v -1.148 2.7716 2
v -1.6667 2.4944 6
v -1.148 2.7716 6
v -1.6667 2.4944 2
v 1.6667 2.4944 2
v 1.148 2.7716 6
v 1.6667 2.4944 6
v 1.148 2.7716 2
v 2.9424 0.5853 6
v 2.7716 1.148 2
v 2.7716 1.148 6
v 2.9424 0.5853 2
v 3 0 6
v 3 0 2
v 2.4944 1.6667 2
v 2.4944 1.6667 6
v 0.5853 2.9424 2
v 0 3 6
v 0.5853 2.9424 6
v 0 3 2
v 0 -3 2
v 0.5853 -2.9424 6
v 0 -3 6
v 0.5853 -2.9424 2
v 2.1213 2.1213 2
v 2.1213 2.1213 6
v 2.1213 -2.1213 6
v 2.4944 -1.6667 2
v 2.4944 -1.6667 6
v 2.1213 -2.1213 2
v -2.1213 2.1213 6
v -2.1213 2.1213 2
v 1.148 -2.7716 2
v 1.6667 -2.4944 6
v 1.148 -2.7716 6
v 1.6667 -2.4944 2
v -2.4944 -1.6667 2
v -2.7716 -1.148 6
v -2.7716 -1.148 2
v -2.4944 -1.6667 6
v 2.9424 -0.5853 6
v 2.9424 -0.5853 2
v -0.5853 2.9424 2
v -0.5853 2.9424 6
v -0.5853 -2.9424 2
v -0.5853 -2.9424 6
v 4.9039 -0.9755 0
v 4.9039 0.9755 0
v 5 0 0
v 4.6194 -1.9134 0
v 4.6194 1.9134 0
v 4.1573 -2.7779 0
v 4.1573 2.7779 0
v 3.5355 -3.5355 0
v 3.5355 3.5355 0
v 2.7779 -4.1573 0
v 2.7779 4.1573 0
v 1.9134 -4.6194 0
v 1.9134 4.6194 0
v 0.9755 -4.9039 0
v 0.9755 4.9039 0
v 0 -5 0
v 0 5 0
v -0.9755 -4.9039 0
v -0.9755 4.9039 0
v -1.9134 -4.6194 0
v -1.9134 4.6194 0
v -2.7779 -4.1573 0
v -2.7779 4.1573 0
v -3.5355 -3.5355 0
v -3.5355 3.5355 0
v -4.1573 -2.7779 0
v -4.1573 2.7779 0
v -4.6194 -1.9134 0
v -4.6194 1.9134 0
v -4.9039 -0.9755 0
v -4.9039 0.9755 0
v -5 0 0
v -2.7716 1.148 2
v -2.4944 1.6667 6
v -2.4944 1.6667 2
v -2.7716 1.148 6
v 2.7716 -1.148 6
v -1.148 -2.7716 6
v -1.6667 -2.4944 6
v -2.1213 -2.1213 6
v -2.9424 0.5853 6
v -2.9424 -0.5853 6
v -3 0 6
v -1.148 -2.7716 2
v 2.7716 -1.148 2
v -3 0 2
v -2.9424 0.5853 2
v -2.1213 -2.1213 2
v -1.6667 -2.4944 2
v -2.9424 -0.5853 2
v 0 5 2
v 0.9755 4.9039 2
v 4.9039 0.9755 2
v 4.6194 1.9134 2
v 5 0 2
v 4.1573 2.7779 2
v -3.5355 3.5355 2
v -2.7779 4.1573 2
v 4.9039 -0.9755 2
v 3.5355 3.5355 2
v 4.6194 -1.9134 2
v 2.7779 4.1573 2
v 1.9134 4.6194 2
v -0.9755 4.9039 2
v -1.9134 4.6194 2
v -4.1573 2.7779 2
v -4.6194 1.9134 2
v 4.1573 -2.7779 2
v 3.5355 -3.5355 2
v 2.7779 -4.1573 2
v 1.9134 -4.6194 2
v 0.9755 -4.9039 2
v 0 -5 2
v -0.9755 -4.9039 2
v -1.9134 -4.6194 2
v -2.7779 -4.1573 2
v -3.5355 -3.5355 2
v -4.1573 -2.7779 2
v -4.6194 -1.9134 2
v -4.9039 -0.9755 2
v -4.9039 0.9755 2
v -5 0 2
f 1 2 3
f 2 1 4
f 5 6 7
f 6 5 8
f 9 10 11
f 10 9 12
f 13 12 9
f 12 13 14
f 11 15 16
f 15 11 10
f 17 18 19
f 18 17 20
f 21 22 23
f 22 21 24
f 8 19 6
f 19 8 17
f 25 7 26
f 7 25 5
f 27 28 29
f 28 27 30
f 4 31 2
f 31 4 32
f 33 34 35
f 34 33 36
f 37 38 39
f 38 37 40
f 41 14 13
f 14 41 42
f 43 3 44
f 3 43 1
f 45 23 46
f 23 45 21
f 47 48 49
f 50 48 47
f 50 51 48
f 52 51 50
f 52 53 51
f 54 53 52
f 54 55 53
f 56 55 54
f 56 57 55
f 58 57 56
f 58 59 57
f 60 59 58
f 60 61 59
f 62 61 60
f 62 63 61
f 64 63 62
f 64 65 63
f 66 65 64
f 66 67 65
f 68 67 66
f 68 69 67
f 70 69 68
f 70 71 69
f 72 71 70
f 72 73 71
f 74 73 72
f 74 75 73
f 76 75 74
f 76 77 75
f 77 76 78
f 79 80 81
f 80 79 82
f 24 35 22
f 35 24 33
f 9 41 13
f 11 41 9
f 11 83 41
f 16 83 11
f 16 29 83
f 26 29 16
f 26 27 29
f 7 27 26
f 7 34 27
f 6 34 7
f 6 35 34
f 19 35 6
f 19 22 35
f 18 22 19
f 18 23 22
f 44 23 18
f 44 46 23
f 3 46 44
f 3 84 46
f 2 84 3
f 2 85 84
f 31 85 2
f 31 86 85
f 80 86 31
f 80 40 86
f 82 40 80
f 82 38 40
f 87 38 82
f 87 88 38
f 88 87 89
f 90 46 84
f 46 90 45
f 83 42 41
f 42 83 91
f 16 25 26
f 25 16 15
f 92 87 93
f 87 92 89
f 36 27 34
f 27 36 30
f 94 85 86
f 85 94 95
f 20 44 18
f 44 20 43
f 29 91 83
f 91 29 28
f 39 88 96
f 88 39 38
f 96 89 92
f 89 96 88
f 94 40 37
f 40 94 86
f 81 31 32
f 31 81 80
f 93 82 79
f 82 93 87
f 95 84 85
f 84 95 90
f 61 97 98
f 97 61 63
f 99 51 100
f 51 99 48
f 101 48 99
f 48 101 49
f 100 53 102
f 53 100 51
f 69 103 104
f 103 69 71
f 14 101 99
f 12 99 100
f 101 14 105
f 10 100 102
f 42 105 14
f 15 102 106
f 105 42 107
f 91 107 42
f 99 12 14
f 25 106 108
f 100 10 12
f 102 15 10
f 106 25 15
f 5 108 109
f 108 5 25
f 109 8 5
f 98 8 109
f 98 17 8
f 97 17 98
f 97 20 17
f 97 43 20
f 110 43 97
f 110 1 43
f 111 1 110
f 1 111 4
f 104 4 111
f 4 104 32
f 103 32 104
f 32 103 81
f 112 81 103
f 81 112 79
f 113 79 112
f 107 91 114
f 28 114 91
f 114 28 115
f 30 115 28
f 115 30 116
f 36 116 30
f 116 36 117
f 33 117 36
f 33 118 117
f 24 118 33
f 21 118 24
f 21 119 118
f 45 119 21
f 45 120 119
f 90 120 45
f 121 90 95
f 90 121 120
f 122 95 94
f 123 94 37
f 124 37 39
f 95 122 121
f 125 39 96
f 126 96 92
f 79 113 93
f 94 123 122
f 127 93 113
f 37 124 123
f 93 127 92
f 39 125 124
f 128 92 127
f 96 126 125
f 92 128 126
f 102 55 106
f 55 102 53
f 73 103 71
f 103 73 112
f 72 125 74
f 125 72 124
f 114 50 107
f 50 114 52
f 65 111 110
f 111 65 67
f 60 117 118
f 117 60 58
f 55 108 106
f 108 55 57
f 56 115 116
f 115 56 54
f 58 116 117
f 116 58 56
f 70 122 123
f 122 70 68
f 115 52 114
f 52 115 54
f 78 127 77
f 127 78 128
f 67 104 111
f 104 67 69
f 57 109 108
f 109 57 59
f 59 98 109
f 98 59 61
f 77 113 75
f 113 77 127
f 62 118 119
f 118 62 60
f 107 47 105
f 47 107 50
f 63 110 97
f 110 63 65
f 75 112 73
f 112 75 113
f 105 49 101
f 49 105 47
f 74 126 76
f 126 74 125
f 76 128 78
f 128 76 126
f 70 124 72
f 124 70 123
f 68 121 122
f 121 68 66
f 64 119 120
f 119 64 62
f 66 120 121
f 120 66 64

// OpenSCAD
d=6;
h=6;

base=10;
base_h=2;


translate(0, 0, 0) 
    cylinder(d=d,h=h, $fn=32);

translate(0, 0, 0)
    cylinder(d=base, h=base_h, $fn=32);
